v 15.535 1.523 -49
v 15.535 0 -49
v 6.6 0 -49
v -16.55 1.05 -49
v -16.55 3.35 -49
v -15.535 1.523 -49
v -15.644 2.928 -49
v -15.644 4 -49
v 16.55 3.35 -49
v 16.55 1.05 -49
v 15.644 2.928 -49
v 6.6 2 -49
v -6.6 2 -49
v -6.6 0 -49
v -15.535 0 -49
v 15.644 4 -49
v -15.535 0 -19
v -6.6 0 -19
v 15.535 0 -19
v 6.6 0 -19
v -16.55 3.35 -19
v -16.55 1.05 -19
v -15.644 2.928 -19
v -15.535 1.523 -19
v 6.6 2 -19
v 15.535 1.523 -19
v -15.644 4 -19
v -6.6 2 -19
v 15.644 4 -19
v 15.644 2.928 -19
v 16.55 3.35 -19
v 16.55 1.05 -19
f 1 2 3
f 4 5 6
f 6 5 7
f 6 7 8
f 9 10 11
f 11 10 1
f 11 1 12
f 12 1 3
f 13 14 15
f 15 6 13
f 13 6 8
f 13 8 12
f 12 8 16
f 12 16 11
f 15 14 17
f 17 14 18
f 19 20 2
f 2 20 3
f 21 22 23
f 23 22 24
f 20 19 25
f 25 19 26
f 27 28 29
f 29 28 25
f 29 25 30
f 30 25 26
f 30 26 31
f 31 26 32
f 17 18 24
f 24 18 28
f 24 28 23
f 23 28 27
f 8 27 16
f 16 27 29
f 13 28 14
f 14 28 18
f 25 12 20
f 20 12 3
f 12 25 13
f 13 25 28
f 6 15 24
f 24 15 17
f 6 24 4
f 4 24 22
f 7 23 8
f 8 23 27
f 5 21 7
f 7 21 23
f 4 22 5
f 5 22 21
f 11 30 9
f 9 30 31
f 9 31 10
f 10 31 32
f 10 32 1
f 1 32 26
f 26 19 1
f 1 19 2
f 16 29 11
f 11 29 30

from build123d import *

# Parameters (mm, degrees)
SKETCH1_W             = 3
SKETCH1_H             = 49
BOSS_EXTRUDE1_DEPTH   = 10
BOSS_EXTRUDE1_2_DEPTH = 10
BOSS_EXTRUDE2_START   = -10
SKETCH2_W             = 33.1
SKETCH2_H             = 30
BOSS_EXTRUDE2_DEPTH   = 4
CUT_EXTRUDE1_START    = -10
SKETCH3_W             = 13.2
SKETCH3_H             = 30
CUT_EXTRUDE1_DEPTH    = 2
CUT_EXTRUDE2_START    = -3
CUT_EXTRUDE2_DEPTH    = 2.5
CUT_EXTRUDE3_START    = -36.1
SKETCH6_R             = 1.6
CUT_EXTRUDE3_DEPTH    = 2.5
CUT_EXTRUDE4_START    = -3.4
CUT_EXTRUDE4_DEPTH    = 3.2
CUT_EXTRUDE6_DEPTH    = 54.695460702


with BuildPart() as part:
    # Sketch1 → Boss-Extrude1 (new body)
    with BuildSketch(Plane(origin=(0, 0, 0), x_dir=(1, 0, 0), z_dir=(0, 1, 0))):
        with Locations((-18.05, 24.5)):
            Rectangle(SKETCH1_W, SKETCH1_H)
    extrude(amount=BOSS_EXTRUDE1_DEPTH)



with BuildPart() as body_2:
    # Sketch1 → Boss-Extrude1 2 (new body)
    with BuildSketch(Plane(origin=(0, 0, 0), x_dir=(1, 0, 0), z_dir=(0, 1, 0))):
        with Locations((18.05, 24.5)):
            Rectangle(SKETCH1_W, SKETCH1_H)
    extrude(amount=BOSS_EXTRUDE1_2_DEPTH)


with BuildPart() as part_1:
    add(part.part)

    add(body_2.part)  # Boss-Extrude2 merges body 2
    # Sketch2 → Boss-Extrude2 (add)
    with BuildSketch(Plane(origin=(0, 10, 0), x_dir=(1, 0, 0), z_dir=(0, 1, 0)).offset(BOSS_EXTRUDE2_START)):
        with Locations((0, 34)):
            Rectangle(SKETCH2_W, SKETCH2_H)
    extrude(amount=BOSS_EXTRUDE2_DEPTH)

    # Sketch3 → Cut-Extrude1 (cut)
    with BuildSketch(Plane(origin=(0, 10, 0), x_dir=(1, 0, 0), z_dir=(0, 1, 0)).offset(CUT_EXTRUDE1_START)):
        with Locations((0, 34)):
            Rectangle(SKETCH3_W, SKETCH3_H)
    extrude(amount=CUT_EXTRUDE1_DEPTH, mode=Mode.SUBTRACT)

    # Sketch5 → Cut-Extrude2 (cut)
    with BuildSketch(Plane.ZY.offset(19.55).offset(CUT_EXTRUDE2_START)):
        with BuildLine():
            Line((-4.75, 7.236067977), (-4.854831539, 6.824677172))
            ThreePointArc((-4.854831539, 6.824677172), (-4.891407754, 6.769616655), (-4.954343768, 6.74940433))
            ThreePointArc((-4.954343768, 6.74940433), (-5, 6.75), (-5.045656232, 6.74940433))
            ThreePointArc((-5.045656232, 6.74940433), (-5.108592246, 6.769616655), (-5.145168461, 6.824677172))
            Line((-5.145168461, 6.824677172), (-5.25, 7.236067977))
            ThreePointArc((-5.25, 7.236067977), (-5.3907084, 7.215817444), (-5.529857135, 7.186721614))
            Line((-5.529857135, 7.186721614), (-5.487662617, 6.764286212))
            ThreePointArc((-5.487662617, 6.764286212), (-5.503201209, 6.700036448), (-5.555428696, 6.65951769))
            ThreePointArc((-5.555428696, 6.65951769), (-5.598535251, 6.644462086), (-5.641234343, 6.628286988))
            ThreePointArc((-5.641234343, 6.628286988), (-5.707287874, 6.625754976), (-5.760490079, 6.664985136))
            Line((-5.760490079, 6.664985136), (-5.999703445, 7.015711542))
            ThreePointArc((-5.999703445, 7.015711542), (-6.125, 6.948557159), (-6.24580568, 6.873624351))
            Line((-6.24580568, 6.873624351), (-6.061674385, 6.491096296))
            ThreePointArc((-6.061674385, 6.491096296), (-6.054301173, 6.425406755), (-6.089520725, 6.369468725))
            ThreePointArc((-6.089520725, 6.369468725), (-6.124878317, 6.340577775), (-6.15947013, 6.310774205))
            ThreePointArc((-6.15947013, 6.310774205), (-6.220674146, 6.285803254), (-6.28408537, 6.30447132))
            Line((-6.28408537, 6.30447132), (-6.628827901, 6.552230546))
            ThreePointArc((-6.628827901, 6.552230546), (-6.723599997, 6.446272122), (-6.811491673, 6.33454034))
            Line((-6.811491673, 6.33454034), (-6.507632554, 6.038058161))
            ThreePointArc((-6.507632554, 6.038058161), (-6.478236855, 5.978851971), (-6.492200475, 5.914241621))
            ThreePointArc((-6.492200475, 5.914241621), (-6.515544457, 5.875), (-6.537856707, 5.835162708))
            ThreePointArc((-6.537856707, 5.835162708), (-6.586829101, 5.790764683), (-6.652801015, 5.786619011))
            Line((-6.652801015, 5.786619011), (-7.061491673, 5.901527638))
            ThreePointArc((-7.061491673, 5.901527638), (-7.114308397, 5.769545322), (-7.158685036, 5.634491068))
            Line((-7.158685036, 5.634491068), (-6.771747987, 5.459814891))
            ThreePointArc((-6.771747987, 5.459814891), (-6.723875356, 5.414233193), (-6.714898826, 5.348743485))
            ThreePointArc((-6.714898826, 5.348743485), (-6.723413568, 5.303884311), (-6.730755068, 5.258818263))
            ThreePointArc((-6.730755068, 5.258818263), (-6.761589047, 5.200348221), (-6.822164464, 5.17388884))
            Line((-6.822164464, 5.17388884), (-7.245509125, 5.142087191))
            ThreePointArc((-7.245509125, 5.142087191), (-7.25, 5), (-7.245509125, 4.857912809))
            Line((-7.245509125, 4.857912809), (-6.822164464, 4.82611116))
            ThreePointArc((-6.822164464, 4.82611116), (-6.761589047, 4.799651779), (-6.730755068, 4.741181737))
            ThreePointArc((-6.730755068, 4.741181737), (-6.723413568, 4.696115689), (-6.714898826, 4.651256515))
            ThreePointArc((-6.714898826, 4.651256515), (-6.723875356, 4.585766807), (-6.771747987, 4.540185109))
            Line((-6.771747987, 4.540185109), (-7.158685036, 4.365508932))
            ThreePointArc((-7.158685036, 4.365508932), (-7.114308397, 4.230454678), (-7.061491673, 4.098472362))
            Line((-7.061491673, 4.098472362), (-6.652801015, 4.213380989))
            ThreePointArc((-6.652801015, 4.213380989), (-6.586829101, 4.209235317), (-6.537856707, 4.164837292))
            ThreePointArc((-6.537856707, 4.164837292), (-6.515544457, 4.125), (-6.492200475, 4.085758379))
            ThreePointArc((-6.492200475, 4.085758379), (-6.478236855, 4.021148029), (-6.507632554, 3.961941839))
            Line((-6.507632554, 3.961941839), (-6.811491673, 3.66545966))
            ThreePointArc((-6.811491673, 3.66545966), (-6.723599997, 3.553727878), (-6.628827901, 3.447769454))
            Line((-6.628827901, 3.447769454), (-6.28408537, 3.69552868))
            ThreePointArc((-6.28408537, 3.69552868), (-6.220674146, 3.714196746), (-6.15947013, 3.689225795))
            ThreePointArc((-6.15947013, 3.689225795), (-6.124878317, 3.659422225), (-6.089520725, 3.630531275))
            ThreePointArc((-6.089520725, 3.630531275), (-6.054301173, 3.574593245), (-6.061674385, 3.508903704))
            Line((-6.061674385, 3.508903704), (-6.24580568, 3.126375649))
            ThreePointArc((-6.24580568, 3.126375649), (-6.125, 3.051442841), (-5.999703445, 2.984288458))
            Line((-5.999703445, 2.984288458), (-5.760490079, 3.335014864))
            ThreePointArc((-5.760490079, 3.335014864), (-5.707287874, 3.374245024), (-5.641234343, 3.371713012))
            ThreePointArc((-5.641234343, 3.371713012), (-5.598535251, 3.355537914), (-5.555428696, 3.34048231))
            ThreePointArc((-5.555428696, 3.34048231), (-5.503201209, 3.299963552), (-5.487662617, 3.235713788))
            Line((-5.487662617, 3.235713788), (-5.529857135, 2.813278386))
            ThreePointArc((-5.529857135, 2.813278386), (-5.3907084, 2.784182556), (-5.25, 2.763932023))
            Line((-5.25, 2.763932023), (-5.145168461, 3.175322828))
            ThreePointArc((-5.145168461, 3.175322828), (-5.108592246, 3.230383345), (-5.045656232, 3.25059567))
            ThreePointArc((-5.045656232, 3.25059567), (-5, 3.25), (-4.954343768, 3.25059567))
            ThreePointArc((-4.954343768, 3.25059567), (-4.891407754, 3.230383345), (-4.854831539, 3.175322828))
            Line((-4.854831539, 3.175322828), (-4.75, 2.763932023))
            ThreePointArc((-4.75, 2.763932023), (-4.6092916, 2.784182556), (-4.470142865, 2.813278386))
            Line((-4.470142865, 2.813278386), (-4.512337383, 3.235713788))
            ThreePointArc((-4.512337383, 3.235713788), (-4.496798791, 3.299963552), (-4.444571304, 3.34048231))
            ThreePointArc((-4.444571304, 3.34048231), (-4.401464749, 3.355537914), (-4.358765657, 3.371713012))
            ThreePointArc((-4.358765657, 3.371713012), (-4.292712126, 3.374245024), (-4.239509921, 3.335014864))
            Line((-4.239509921, 3.335014864), (-4.000296555, 2.984288458))
            ThreePointArc((-4.000296555, 2.984288458), (-3.875, 3.051442841), (-3.75419432, 3.126375649))
            Line((-3.75419432, 3.126375649), (-3.938325615, 3.508903704))
            ThreePointArc((-3.938325615, 3.508903704), (-3.945698827, 3.574593245), (-3.910479275, 3.630531275))
            ThreePointArc((-3.910479275, 3.630531275), (-3.875121683, 3.659422225), (-3.84052987, 3.689225795))
            ThreePointArc((-3.84052987, 3.689225795), (-3.779325854, 3.714196746), (-3.71591463, 3.69552868))
            Line((-3.71591463, 3.69552868), (-3.371172099, 3.447769454))
            ThreePointArc((-3.371172099, 3.447769454), (-3.276400003, 3.553727878), (-3.188508327, 3.66545966))
            Line((-3.188508327, 3.66545966), (-3.492367446, 3.961941839))
            ThreePointArc((-3.492367446, 3.961941839), (-3.521763145, 4.021148029), (-3.507799525, 4.085758379))
            ThreePointArc((-3.507799525, 4.085758379), (-3.484455543, 4.125), (-3.462143293, 4.164837292))
            ThreePointArc((-3.462143293, 4.164837292), (-3.413170899, 4.209235317), (-3.347198985, 4.213380989))
            Line((-3.347198985, 4.213380989), (-2.938508327, 4.098472362))
            ThreePointArc((-2.938508327, 4.098472362), (-2.885691603, 4.230454678), (-2.841314964, 4.365508932))
            Line((-2.841314964, 4.365508932), (-3.228252013, 4.540185109))
            ThreePointArc((-3.228252013, 4.540185109), (-3.276124644, 4.585766807), (-3.285101174, 4.651256515))
            ThreePointArc((-3.285101174, 4.651256515), (-3.276586432, 4.696115689), (-3.269244932, 4.741181737))
            ThreePointArc((-3.269244932, 4.741181737), (-3.238410953, 4.799651779), (-3.177835536, 4.82611116))
            Line((-3.177835536, 4.82611116), (-2.754490875, 4.857912809))
            ThreePointArc((-2.754490875, 4.857912809), (-2.75, 5), (-2.754490875, 5.142087191))
            Line((-2.754490875, 5.142087191), (-3.177835536, 5.17388884))
            ThreePointArc((-3.177835536, 5.17388884), (-3.238410953, 5.200348221), (-3.269244932, 5.258818263))
            ThreePointArc((-3.269244932, 5.258818263), (-3.276586432, 5.303884311), (-3.285101174, 5.348743485))
            ThreePointArc((-3.285101174, 5.348743485), (-3.276124644, 5.414233193), (-3.228252013, 5.459814891))
            Line((-3.228252013, 5.459814891), (-2.841314964, 5.634491068))
            ThreePointArc((-2.841314964, 5.634491068), (-2.885691603, 5.769545322), (-2.938508327, 5.901527638))
            Line((-2.938508327, 5.901527638), (-3.347198985, 5.786619011))
            ThreePointArc((-3.347198985, 5.786619011), (-3.413170899, 5.790764683), (-3.462143293, 5.835162708))
            ThreePointArc((-3.462143293, 5.835162708), (-3.484455543, 5.875), (-3.507799525, 5.914241621))
            ThreePointArc((-3.507799525, 5.914241621), (-3.521763145, 5.978851971), (-3.492367446, 6.038058161))
            Line((-3.492367446, 6.038058161), (-3.188508327, 6.33454034))
            ThreePointArc((-3.188508327, 6.33454034), (-3.276400003, 6.446272122), (-3.371172099, 6.552230546))
            Line((-3.371172099, 6.552230546), (-3.71591463, 6.30447132))
            ThreePointArc((-3.71591463, 6.30447132), (-3.779325854, 6.285803254), (-3.84052987, 6.310774205))
            ThreePointArc((-3.84052987, 6.310774205), (-3.875121683, 6.340577775), (-3.910479275, 6.369468725))
            ThreePointArc((-3.910479275, 6.369468725), (-3.945698827, 6.425406755), (-3.938325615, 6.491096296))
            Line((-3.938325615, 6.491096296), (-3.75419432, 6.873624351))
            ThreePointArc((-3.75419432, 6.873624351), (-3.875, 6.948557159), (-4.000296555, 7.015711542))
            Line((-4.000296555, 7.015711542), (-4.239509921, 6.664985136))
            ThreePointArc((-4.239509921, 6.664985136), (-4.292712126, 6.625754976), (-4.358765657, 6.628286988))
            ThreePointArc((-4.358765657, 6.628286988), (-4.401464749, 6.644462086), (-4.444571304, 6.65951769))
            ThreePointArc((-4.444571304, 6.65951769), (-4.496798791, 6.700036448), (-4.512337383, 6.764286212))
            Line((-4.512337383, 6.764286212), (-4.470142865, 7.186721614))
            ThreePointArc((-4.470142865, 7.186721614), (-4.6092916, 7.215817444), (-4.75, 7.236067977))
        make_face()
    extrude(amount=CUT_EXTRUDE2_DEPTH, mode=Mode.SUBTRACT)

    # Sketch6 → Cut-Extrude3 (cut)
    with BuildSketch(Plane.ZY.offset(19.55).offset(CUT_EXTRUDE3_START)):
        with Locations(Location((-5, 5, 0), (0, 0, 180))):
            Circle(SKETCH6_R)
    extrude(amount=-CUT_EXTRUDE3_DEPTH, mode=Mode.SUBTRACT)

    # Sketch9 → Cut-Extrude4 (cut)
    with BuildSketch(Plane(origin=(0, 10, 0), x_dir=(1, 0, 0), z_dir=(0, 1, 0)).offset(CUT_EXTRUDE4_START)):
        Polygon((16.55, 5), (17.55, 5), (19.05, 0), (16.55, 0), align=None)
    extrude(amount=-CUT_EXTRUDE4_DEPTH, mode=Mode.SUBTRACT)

    # Sketch10 → Cut-Extrude6 (cut, through all)
    with BuildSketch(Plane(origin=(0, 0, -49), x_dir=(-1, 0, 0), z_dir=(0, 0, -1))):
        Polygon((-15.644123368, 2.927582789), (-16.55, 3.35), (-16.55, 1.05), (-15.534888499, 1.523354267), (-15.534888499, -2.347783868), (-19.962773438, -2.347783868), (-19.962773438, 10.874284902), (-15.644123368, 10.874284902), align=None)
        Polygon((19.962773438, 10.874284902), (15.644123368, 10.874284902), (15.644123368, 2.927582789), (16.55, 3.35), (16.55, 1.05), (15.534888499, 1.523354267), (15.534888499, -2.347783868), (19.962773438, -2.347783868), align=None)
    extrude(amount=-CUT_EXTRUDE6_DEPTH, mode=Mode.SUBTRACT)


solid = part_1.part
